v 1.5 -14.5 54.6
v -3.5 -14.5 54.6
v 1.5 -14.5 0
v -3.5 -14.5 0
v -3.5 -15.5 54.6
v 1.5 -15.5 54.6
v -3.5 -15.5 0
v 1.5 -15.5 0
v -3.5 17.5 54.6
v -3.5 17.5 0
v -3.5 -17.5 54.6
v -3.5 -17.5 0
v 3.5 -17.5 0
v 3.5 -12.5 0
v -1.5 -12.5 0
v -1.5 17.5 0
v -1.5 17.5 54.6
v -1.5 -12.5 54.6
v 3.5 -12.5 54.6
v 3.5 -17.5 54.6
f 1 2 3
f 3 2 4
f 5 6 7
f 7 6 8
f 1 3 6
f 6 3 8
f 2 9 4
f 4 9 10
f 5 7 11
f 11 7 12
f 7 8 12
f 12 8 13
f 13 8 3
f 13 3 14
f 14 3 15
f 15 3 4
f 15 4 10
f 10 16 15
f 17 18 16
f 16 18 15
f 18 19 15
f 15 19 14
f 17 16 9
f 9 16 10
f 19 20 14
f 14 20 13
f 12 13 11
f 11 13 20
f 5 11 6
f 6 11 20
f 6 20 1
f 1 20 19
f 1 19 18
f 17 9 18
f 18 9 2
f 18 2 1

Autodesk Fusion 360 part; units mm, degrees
sketch "Sketch1" plane through (0, 0, 0) normal (0, 0, 1) x (1, 0, 0)
  line L0 (-3.5, 17.5) -> (3.5, 17.5)
  line L1 (3.5, 17.5) -> (3.5, -17.5)
  line L2 (3.5, -17.5) -> (-3.5, -17.5)
  line L3 (-3.5, -17.5) -> (-3.5, 17.5)
  line L4 (-3.5, 17.5) -> (3.5, -17.5) construction
  line L5 (3.5, 17.5) -> (-3.5, -17.5) construction
  dimension "d13" = 7
  dimension "d14" = 35
extrude "Extrude1" add sketch "Sketch1" along normal blind 54.6
sketch "Sketch2" plane through (0, 0, 54.6) normal (0, 0, 1) x (-1, 0, 0)
  line L0 (3.5, 17.5) -> (-3.5, 17.5)
  line L1 (-3.5, 17.5) -> (-3.5, -17.5)
  line L2 (-3.5, -17.5) -> (3.5, -17.5)
  line L3 (3.5, -17.5) -> (3.5, 17.5)
  line L4 (-3.5, -17.5) -> (1.5, -17.5)
  line L5 (1.5, -17.5) -> (1.5, 12.5)
  line L6 (1.5, 12.5) -> (-3.5, 12.5)
  line L7 (-3.5, 12.5) -> (-3.5, -17.5)
  dimension "d17" = 5
  dimension "d18" = 30
extrude "Extrude2" cut sketch "Sketch2" against normal blind 54.6 contours L1 L2 L4 L5 L6 L7
sketch "Sketch3" plane through (0, 0, 54.6) normal (0, 0, 1) x (-1, 0, 0)
  line L0 (1.5, 12.5) -> (1.5, -17.5)
  line L1 (1.5, -17.5) -> (3.5, -17.5)
  line L2 (3.5, -17.5) -> (3.5, 17.5)
  line L3 (3.5, 17.5) -> (-3.5, 17.5)
  line L4 (-3.5, 17.5) -> (-3.5, 12.5)
  line L5 (-3.5, 12.5) -> (1.5, 12.5)
  line L6 (-1.5, 14.5) -> (3.5, 14.5)
  line L7 (3.5, 14.5) -> (3.5, 15.5)
  line L8 (3.5, 15.5) -> (-1.5, 15.5)
  line L9 (-1.5, 15.5) -> (-1.5, 14.5)
  dimension "d21" = 5
  dimension "d22" = 1
extrude "Extrude3" cut sketch "Sketch3" against normal blind 54.6 contours L2 L6 L7 L8 L9
